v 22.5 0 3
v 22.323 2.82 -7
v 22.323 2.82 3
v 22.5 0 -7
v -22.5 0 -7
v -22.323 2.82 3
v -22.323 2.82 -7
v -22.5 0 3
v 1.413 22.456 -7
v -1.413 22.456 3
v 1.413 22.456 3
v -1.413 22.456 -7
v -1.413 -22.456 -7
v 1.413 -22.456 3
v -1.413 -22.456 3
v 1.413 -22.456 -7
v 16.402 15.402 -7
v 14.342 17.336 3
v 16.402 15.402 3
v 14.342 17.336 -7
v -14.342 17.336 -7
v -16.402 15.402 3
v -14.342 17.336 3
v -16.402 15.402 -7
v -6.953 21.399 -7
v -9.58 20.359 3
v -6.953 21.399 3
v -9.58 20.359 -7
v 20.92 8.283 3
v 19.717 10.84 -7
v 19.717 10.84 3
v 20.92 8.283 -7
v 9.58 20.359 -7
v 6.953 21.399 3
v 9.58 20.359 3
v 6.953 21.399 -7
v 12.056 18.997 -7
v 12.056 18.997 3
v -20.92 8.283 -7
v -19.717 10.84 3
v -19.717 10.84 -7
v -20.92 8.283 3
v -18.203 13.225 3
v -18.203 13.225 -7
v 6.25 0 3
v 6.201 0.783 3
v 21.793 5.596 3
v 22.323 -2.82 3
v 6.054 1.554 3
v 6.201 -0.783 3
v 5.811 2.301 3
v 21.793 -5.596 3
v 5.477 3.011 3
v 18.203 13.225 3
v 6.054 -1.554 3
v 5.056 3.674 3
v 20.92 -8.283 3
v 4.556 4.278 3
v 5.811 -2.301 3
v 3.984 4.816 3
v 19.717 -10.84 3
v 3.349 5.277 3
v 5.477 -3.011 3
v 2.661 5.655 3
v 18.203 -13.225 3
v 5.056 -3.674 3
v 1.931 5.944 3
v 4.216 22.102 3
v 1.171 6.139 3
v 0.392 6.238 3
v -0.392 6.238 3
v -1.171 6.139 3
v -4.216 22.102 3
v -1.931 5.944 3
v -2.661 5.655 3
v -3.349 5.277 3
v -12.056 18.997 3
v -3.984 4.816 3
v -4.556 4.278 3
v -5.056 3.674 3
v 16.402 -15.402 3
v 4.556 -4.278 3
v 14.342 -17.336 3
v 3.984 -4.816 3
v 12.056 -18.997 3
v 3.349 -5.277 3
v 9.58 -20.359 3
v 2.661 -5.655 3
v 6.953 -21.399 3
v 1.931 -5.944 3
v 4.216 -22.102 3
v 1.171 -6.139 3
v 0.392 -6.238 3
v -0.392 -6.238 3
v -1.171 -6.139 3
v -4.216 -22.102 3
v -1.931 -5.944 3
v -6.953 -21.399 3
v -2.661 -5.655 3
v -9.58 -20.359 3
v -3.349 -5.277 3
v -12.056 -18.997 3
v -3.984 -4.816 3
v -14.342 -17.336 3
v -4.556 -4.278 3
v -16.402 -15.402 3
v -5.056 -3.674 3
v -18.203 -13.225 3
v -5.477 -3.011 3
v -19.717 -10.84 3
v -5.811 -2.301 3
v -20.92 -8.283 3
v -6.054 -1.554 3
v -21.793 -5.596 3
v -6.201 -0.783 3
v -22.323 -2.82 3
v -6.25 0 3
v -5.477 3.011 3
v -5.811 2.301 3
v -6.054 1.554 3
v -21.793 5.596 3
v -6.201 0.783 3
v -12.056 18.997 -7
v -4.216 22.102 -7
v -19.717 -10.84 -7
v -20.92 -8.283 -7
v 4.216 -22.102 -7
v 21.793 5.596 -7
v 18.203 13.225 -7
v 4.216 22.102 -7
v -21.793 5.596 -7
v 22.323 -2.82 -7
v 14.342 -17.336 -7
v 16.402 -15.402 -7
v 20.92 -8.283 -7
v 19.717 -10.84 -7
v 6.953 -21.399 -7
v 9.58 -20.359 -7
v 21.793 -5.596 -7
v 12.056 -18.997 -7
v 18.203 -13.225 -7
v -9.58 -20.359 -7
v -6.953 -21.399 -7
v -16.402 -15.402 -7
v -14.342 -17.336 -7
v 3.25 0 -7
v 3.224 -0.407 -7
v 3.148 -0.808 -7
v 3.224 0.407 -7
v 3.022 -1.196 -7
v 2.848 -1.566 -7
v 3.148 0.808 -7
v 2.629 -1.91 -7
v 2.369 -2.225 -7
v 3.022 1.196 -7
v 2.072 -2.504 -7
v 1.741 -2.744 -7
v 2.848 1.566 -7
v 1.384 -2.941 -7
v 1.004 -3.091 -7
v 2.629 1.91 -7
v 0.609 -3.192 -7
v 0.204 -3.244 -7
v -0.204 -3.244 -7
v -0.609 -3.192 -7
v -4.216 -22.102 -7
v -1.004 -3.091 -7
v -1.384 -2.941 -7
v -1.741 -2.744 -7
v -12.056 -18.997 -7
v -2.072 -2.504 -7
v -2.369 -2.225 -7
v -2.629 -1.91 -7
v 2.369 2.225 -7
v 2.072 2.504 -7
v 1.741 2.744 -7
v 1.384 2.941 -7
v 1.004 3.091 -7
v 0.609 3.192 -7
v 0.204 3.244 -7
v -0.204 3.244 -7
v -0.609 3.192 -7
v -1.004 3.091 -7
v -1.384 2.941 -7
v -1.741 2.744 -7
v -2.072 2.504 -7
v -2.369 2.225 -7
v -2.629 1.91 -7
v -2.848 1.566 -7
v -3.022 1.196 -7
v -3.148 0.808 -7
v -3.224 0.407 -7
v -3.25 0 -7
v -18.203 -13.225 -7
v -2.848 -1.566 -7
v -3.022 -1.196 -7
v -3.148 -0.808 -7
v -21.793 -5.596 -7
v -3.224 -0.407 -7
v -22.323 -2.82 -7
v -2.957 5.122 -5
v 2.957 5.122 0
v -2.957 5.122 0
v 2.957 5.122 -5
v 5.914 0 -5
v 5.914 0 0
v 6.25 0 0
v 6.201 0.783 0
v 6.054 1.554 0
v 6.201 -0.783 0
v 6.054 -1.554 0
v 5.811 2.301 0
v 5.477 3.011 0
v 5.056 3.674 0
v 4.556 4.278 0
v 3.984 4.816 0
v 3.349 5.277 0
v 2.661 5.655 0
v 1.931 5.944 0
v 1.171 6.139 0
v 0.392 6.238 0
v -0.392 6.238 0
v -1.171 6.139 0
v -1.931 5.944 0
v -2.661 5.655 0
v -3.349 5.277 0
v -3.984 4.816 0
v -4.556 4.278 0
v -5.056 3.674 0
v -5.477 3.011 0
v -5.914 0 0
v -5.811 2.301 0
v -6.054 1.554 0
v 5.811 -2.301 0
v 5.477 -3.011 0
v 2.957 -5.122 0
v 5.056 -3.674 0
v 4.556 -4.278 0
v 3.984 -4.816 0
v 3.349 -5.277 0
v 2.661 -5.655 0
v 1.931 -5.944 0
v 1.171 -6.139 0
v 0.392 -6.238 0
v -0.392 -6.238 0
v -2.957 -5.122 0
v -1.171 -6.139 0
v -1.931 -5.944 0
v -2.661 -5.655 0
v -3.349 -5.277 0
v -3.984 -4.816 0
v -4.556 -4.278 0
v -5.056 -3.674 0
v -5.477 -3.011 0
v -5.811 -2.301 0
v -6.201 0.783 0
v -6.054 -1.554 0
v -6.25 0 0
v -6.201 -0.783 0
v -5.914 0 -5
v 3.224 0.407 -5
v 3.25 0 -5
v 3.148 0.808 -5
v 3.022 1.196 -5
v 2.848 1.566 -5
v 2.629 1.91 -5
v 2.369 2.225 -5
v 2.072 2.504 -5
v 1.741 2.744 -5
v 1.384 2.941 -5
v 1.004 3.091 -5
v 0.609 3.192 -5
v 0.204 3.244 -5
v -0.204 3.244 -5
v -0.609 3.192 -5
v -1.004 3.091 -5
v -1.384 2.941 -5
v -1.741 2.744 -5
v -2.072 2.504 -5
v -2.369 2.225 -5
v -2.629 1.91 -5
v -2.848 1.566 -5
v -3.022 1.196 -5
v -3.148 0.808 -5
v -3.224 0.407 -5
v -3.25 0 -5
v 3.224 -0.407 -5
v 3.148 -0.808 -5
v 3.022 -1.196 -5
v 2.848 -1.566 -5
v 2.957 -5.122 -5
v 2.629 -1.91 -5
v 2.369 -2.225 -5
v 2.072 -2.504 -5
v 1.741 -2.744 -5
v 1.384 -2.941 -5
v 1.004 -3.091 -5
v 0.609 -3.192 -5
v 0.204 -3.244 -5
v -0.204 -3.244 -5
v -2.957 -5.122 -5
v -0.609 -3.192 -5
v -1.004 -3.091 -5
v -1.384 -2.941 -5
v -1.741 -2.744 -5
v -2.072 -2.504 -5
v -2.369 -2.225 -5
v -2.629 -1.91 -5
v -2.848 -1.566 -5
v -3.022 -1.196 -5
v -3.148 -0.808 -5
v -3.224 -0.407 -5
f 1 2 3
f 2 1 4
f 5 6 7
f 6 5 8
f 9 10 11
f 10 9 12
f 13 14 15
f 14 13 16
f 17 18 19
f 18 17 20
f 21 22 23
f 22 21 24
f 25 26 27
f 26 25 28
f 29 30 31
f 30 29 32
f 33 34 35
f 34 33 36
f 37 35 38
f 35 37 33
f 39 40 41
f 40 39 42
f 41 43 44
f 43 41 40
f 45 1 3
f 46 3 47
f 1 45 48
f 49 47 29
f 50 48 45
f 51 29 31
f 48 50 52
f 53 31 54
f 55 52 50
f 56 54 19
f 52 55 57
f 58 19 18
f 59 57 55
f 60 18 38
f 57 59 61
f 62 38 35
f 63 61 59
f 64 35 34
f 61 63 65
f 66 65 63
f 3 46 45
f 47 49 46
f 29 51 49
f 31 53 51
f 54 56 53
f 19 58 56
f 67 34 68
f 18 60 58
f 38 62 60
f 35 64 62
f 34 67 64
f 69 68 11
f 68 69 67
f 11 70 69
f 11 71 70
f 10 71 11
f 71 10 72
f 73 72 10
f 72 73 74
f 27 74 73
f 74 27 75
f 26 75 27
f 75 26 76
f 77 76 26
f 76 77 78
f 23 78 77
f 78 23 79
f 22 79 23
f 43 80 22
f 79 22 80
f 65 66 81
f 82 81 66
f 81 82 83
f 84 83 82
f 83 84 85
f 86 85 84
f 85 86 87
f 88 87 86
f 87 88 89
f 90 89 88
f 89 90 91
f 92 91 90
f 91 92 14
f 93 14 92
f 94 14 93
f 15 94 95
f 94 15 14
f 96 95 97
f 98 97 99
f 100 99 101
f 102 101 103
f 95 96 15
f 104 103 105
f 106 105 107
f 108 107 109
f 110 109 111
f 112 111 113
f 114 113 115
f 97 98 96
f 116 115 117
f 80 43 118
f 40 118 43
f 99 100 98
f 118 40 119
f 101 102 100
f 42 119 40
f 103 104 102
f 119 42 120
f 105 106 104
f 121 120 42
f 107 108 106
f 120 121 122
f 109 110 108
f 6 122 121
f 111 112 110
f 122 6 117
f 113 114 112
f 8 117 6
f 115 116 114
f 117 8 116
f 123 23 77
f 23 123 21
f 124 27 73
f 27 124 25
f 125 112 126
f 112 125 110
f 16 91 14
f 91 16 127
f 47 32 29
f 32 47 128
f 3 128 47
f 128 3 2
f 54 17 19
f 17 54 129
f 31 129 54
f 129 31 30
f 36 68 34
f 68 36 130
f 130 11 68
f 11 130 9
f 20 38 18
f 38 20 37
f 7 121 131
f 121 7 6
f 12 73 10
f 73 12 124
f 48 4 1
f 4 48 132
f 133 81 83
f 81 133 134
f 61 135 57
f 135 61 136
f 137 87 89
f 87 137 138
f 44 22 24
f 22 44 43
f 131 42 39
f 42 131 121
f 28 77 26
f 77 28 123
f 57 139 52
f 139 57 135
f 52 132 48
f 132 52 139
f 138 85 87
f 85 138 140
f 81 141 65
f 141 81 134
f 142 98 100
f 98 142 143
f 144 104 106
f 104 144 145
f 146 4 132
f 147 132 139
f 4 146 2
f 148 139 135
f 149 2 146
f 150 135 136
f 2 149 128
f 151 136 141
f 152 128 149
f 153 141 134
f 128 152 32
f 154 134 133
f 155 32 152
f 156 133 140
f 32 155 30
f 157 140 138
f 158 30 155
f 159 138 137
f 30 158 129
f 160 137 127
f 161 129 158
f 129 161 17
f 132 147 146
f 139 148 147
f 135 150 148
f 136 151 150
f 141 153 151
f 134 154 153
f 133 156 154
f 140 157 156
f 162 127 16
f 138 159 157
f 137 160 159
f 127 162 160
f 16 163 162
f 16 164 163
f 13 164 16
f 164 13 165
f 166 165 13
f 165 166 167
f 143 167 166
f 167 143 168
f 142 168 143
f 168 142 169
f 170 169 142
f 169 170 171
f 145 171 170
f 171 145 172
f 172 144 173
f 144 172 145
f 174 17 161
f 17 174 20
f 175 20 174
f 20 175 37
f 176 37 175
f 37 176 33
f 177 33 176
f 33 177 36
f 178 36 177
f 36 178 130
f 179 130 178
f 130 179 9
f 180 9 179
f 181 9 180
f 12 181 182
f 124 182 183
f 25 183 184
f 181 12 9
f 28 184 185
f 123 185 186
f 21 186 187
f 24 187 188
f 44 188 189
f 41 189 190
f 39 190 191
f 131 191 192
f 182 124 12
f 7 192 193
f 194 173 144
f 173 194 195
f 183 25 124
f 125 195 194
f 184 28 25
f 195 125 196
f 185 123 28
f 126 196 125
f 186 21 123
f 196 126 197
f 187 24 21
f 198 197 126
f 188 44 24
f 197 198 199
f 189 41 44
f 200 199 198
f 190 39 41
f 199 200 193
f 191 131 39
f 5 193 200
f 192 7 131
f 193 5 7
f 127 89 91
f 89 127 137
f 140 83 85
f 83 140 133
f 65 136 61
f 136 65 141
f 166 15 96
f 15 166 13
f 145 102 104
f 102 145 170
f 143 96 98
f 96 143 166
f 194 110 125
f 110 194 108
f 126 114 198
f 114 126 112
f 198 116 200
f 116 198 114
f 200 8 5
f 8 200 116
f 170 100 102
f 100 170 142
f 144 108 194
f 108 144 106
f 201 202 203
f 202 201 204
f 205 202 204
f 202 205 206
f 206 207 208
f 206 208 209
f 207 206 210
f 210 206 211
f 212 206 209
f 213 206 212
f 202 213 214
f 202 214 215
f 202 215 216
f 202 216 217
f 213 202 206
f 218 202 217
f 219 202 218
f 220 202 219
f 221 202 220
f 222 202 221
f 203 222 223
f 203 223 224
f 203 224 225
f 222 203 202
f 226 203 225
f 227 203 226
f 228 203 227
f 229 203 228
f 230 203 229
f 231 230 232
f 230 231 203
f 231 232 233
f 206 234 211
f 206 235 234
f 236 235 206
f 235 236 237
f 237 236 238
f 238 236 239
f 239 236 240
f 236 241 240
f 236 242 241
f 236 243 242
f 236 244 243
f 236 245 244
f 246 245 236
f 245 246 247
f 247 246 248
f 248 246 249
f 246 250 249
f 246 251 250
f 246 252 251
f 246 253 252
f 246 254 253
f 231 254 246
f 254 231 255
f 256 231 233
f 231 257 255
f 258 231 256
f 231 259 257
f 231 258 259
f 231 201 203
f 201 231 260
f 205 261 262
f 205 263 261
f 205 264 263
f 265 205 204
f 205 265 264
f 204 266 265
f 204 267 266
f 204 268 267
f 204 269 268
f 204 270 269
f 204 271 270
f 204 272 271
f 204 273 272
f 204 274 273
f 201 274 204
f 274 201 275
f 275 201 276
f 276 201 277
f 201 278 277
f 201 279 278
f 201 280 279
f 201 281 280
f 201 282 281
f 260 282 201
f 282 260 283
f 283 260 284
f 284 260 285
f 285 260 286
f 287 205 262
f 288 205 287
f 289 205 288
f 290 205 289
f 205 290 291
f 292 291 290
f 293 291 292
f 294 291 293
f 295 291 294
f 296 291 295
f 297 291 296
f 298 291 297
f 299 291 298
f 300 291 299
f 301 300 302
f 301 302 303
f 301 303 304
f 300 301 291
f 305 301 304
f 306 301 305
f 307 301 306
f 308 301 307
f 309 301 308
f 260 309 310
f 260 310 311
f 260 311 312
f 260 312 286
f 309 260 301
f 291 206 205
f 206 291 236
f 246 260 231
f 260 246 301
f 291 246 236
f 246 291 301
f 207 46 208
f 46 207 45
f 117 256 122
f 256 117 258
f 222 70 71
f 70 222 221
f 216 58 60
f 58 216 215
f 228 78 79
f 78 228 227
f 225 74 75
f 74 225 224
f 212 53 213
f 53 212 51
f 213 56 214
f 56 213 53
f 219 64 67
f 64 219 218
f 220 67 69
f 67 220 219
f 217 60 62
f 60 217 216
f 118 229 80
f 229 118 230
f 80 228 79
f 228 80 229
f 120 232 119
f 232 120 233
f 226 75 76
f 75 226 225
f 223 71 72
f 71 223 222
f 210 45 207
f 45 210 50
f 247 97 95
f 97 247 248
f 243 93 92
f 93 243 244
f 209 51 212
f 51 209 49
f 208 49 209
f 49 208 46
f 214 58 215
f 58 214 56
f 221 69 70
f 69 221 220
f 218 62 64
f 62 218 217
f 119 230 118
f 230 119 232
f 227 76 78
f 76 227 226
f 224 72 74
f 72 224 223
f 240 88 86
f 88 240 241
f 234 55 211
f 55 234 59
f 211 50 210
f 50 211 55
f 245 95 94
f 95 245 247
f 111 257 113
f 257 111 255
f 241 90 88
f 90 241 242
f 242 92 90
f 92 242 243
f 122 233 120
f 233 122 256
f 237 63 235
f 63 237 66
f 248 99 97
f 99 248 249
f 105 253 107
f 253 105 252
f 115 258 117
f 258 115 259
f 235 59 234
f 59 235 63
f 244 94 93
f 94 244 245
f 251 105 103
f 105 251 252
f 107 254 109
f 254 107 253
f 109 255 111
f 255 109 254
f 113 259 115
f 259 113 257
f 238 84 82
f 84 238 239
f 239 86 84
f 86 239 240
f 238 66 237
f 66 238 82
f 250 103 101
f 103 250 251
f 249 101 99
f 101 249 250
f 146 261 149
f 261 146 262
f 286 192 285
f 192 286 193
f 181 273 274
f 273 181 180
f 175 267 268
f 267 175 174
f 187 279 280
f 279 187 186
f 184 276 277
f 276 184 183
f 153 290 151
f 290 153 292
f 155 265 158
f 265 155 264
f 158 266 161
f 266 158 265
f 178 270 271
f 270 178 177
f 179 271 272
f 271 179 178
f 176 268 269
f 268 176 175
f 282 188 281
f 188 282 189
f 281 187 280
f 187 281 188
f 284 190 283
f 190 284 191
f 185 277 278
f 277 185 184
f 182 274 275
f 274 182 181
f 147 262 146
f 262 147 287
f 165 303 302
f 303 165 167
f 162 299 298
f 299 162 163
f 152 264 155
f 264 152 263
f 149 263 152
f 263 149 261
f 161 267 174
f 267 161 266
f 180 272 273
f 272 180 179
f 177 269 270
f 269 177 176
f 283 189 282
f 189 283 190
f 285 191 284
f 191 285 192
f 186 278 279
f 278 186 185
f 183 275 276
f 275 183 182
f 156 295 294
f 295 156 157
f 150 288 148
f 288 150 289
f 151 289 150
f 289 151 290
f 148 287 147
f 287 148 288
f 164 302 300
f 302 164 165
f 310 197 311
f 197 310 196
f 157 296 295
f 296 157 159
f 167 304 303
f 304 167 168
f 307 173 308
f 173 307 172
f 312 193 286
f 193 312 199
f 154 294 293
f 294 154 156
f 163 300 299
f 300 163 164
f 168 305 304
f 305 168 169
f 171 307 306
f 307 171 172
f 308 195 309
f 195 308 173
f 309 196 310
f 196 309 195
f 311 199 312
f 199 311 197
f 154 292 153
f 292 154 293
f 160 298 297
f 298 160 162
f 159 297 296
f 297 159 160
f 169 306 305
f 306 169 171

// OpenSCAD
$fn = 50;

difference() {
	union() {
		translate(v = [0, 0, -7.0]) {
			cylinder(h = 10.0, r = 22.5);
		}
		#translate(v = [0, 0, -8.5]) {
			cylinder(h = 8.5, r = 2.875);
		}
	}
	union() {
		translate(v = [0, 0, 0]) {
			rotate(a = [0, 0, 0]) {
				difference() {
					union() {
						translate(v = [0, 0, -5]) {
							linear_extrude(height = 5) {
								polygon(points = [[5.914249999999999, 0.0], [2.957125, 5.1218907443321156], [-2.9571249999999982, 5.1218907443321156], [-5.914249999999999, 7.242867331857232e-16], [-2.9571250000000022, -5.121890744332115], [2.9571249999999956, -5.121890744332118]]);
							}
						}
					}
					union();
				}
			}
		}
		#cylinder(h = 3, r = 6.25);
		#translate(v = [0, 0, -100.0]) {
			cylinder(h = 200, r = 3.25);
		}
	}
}
